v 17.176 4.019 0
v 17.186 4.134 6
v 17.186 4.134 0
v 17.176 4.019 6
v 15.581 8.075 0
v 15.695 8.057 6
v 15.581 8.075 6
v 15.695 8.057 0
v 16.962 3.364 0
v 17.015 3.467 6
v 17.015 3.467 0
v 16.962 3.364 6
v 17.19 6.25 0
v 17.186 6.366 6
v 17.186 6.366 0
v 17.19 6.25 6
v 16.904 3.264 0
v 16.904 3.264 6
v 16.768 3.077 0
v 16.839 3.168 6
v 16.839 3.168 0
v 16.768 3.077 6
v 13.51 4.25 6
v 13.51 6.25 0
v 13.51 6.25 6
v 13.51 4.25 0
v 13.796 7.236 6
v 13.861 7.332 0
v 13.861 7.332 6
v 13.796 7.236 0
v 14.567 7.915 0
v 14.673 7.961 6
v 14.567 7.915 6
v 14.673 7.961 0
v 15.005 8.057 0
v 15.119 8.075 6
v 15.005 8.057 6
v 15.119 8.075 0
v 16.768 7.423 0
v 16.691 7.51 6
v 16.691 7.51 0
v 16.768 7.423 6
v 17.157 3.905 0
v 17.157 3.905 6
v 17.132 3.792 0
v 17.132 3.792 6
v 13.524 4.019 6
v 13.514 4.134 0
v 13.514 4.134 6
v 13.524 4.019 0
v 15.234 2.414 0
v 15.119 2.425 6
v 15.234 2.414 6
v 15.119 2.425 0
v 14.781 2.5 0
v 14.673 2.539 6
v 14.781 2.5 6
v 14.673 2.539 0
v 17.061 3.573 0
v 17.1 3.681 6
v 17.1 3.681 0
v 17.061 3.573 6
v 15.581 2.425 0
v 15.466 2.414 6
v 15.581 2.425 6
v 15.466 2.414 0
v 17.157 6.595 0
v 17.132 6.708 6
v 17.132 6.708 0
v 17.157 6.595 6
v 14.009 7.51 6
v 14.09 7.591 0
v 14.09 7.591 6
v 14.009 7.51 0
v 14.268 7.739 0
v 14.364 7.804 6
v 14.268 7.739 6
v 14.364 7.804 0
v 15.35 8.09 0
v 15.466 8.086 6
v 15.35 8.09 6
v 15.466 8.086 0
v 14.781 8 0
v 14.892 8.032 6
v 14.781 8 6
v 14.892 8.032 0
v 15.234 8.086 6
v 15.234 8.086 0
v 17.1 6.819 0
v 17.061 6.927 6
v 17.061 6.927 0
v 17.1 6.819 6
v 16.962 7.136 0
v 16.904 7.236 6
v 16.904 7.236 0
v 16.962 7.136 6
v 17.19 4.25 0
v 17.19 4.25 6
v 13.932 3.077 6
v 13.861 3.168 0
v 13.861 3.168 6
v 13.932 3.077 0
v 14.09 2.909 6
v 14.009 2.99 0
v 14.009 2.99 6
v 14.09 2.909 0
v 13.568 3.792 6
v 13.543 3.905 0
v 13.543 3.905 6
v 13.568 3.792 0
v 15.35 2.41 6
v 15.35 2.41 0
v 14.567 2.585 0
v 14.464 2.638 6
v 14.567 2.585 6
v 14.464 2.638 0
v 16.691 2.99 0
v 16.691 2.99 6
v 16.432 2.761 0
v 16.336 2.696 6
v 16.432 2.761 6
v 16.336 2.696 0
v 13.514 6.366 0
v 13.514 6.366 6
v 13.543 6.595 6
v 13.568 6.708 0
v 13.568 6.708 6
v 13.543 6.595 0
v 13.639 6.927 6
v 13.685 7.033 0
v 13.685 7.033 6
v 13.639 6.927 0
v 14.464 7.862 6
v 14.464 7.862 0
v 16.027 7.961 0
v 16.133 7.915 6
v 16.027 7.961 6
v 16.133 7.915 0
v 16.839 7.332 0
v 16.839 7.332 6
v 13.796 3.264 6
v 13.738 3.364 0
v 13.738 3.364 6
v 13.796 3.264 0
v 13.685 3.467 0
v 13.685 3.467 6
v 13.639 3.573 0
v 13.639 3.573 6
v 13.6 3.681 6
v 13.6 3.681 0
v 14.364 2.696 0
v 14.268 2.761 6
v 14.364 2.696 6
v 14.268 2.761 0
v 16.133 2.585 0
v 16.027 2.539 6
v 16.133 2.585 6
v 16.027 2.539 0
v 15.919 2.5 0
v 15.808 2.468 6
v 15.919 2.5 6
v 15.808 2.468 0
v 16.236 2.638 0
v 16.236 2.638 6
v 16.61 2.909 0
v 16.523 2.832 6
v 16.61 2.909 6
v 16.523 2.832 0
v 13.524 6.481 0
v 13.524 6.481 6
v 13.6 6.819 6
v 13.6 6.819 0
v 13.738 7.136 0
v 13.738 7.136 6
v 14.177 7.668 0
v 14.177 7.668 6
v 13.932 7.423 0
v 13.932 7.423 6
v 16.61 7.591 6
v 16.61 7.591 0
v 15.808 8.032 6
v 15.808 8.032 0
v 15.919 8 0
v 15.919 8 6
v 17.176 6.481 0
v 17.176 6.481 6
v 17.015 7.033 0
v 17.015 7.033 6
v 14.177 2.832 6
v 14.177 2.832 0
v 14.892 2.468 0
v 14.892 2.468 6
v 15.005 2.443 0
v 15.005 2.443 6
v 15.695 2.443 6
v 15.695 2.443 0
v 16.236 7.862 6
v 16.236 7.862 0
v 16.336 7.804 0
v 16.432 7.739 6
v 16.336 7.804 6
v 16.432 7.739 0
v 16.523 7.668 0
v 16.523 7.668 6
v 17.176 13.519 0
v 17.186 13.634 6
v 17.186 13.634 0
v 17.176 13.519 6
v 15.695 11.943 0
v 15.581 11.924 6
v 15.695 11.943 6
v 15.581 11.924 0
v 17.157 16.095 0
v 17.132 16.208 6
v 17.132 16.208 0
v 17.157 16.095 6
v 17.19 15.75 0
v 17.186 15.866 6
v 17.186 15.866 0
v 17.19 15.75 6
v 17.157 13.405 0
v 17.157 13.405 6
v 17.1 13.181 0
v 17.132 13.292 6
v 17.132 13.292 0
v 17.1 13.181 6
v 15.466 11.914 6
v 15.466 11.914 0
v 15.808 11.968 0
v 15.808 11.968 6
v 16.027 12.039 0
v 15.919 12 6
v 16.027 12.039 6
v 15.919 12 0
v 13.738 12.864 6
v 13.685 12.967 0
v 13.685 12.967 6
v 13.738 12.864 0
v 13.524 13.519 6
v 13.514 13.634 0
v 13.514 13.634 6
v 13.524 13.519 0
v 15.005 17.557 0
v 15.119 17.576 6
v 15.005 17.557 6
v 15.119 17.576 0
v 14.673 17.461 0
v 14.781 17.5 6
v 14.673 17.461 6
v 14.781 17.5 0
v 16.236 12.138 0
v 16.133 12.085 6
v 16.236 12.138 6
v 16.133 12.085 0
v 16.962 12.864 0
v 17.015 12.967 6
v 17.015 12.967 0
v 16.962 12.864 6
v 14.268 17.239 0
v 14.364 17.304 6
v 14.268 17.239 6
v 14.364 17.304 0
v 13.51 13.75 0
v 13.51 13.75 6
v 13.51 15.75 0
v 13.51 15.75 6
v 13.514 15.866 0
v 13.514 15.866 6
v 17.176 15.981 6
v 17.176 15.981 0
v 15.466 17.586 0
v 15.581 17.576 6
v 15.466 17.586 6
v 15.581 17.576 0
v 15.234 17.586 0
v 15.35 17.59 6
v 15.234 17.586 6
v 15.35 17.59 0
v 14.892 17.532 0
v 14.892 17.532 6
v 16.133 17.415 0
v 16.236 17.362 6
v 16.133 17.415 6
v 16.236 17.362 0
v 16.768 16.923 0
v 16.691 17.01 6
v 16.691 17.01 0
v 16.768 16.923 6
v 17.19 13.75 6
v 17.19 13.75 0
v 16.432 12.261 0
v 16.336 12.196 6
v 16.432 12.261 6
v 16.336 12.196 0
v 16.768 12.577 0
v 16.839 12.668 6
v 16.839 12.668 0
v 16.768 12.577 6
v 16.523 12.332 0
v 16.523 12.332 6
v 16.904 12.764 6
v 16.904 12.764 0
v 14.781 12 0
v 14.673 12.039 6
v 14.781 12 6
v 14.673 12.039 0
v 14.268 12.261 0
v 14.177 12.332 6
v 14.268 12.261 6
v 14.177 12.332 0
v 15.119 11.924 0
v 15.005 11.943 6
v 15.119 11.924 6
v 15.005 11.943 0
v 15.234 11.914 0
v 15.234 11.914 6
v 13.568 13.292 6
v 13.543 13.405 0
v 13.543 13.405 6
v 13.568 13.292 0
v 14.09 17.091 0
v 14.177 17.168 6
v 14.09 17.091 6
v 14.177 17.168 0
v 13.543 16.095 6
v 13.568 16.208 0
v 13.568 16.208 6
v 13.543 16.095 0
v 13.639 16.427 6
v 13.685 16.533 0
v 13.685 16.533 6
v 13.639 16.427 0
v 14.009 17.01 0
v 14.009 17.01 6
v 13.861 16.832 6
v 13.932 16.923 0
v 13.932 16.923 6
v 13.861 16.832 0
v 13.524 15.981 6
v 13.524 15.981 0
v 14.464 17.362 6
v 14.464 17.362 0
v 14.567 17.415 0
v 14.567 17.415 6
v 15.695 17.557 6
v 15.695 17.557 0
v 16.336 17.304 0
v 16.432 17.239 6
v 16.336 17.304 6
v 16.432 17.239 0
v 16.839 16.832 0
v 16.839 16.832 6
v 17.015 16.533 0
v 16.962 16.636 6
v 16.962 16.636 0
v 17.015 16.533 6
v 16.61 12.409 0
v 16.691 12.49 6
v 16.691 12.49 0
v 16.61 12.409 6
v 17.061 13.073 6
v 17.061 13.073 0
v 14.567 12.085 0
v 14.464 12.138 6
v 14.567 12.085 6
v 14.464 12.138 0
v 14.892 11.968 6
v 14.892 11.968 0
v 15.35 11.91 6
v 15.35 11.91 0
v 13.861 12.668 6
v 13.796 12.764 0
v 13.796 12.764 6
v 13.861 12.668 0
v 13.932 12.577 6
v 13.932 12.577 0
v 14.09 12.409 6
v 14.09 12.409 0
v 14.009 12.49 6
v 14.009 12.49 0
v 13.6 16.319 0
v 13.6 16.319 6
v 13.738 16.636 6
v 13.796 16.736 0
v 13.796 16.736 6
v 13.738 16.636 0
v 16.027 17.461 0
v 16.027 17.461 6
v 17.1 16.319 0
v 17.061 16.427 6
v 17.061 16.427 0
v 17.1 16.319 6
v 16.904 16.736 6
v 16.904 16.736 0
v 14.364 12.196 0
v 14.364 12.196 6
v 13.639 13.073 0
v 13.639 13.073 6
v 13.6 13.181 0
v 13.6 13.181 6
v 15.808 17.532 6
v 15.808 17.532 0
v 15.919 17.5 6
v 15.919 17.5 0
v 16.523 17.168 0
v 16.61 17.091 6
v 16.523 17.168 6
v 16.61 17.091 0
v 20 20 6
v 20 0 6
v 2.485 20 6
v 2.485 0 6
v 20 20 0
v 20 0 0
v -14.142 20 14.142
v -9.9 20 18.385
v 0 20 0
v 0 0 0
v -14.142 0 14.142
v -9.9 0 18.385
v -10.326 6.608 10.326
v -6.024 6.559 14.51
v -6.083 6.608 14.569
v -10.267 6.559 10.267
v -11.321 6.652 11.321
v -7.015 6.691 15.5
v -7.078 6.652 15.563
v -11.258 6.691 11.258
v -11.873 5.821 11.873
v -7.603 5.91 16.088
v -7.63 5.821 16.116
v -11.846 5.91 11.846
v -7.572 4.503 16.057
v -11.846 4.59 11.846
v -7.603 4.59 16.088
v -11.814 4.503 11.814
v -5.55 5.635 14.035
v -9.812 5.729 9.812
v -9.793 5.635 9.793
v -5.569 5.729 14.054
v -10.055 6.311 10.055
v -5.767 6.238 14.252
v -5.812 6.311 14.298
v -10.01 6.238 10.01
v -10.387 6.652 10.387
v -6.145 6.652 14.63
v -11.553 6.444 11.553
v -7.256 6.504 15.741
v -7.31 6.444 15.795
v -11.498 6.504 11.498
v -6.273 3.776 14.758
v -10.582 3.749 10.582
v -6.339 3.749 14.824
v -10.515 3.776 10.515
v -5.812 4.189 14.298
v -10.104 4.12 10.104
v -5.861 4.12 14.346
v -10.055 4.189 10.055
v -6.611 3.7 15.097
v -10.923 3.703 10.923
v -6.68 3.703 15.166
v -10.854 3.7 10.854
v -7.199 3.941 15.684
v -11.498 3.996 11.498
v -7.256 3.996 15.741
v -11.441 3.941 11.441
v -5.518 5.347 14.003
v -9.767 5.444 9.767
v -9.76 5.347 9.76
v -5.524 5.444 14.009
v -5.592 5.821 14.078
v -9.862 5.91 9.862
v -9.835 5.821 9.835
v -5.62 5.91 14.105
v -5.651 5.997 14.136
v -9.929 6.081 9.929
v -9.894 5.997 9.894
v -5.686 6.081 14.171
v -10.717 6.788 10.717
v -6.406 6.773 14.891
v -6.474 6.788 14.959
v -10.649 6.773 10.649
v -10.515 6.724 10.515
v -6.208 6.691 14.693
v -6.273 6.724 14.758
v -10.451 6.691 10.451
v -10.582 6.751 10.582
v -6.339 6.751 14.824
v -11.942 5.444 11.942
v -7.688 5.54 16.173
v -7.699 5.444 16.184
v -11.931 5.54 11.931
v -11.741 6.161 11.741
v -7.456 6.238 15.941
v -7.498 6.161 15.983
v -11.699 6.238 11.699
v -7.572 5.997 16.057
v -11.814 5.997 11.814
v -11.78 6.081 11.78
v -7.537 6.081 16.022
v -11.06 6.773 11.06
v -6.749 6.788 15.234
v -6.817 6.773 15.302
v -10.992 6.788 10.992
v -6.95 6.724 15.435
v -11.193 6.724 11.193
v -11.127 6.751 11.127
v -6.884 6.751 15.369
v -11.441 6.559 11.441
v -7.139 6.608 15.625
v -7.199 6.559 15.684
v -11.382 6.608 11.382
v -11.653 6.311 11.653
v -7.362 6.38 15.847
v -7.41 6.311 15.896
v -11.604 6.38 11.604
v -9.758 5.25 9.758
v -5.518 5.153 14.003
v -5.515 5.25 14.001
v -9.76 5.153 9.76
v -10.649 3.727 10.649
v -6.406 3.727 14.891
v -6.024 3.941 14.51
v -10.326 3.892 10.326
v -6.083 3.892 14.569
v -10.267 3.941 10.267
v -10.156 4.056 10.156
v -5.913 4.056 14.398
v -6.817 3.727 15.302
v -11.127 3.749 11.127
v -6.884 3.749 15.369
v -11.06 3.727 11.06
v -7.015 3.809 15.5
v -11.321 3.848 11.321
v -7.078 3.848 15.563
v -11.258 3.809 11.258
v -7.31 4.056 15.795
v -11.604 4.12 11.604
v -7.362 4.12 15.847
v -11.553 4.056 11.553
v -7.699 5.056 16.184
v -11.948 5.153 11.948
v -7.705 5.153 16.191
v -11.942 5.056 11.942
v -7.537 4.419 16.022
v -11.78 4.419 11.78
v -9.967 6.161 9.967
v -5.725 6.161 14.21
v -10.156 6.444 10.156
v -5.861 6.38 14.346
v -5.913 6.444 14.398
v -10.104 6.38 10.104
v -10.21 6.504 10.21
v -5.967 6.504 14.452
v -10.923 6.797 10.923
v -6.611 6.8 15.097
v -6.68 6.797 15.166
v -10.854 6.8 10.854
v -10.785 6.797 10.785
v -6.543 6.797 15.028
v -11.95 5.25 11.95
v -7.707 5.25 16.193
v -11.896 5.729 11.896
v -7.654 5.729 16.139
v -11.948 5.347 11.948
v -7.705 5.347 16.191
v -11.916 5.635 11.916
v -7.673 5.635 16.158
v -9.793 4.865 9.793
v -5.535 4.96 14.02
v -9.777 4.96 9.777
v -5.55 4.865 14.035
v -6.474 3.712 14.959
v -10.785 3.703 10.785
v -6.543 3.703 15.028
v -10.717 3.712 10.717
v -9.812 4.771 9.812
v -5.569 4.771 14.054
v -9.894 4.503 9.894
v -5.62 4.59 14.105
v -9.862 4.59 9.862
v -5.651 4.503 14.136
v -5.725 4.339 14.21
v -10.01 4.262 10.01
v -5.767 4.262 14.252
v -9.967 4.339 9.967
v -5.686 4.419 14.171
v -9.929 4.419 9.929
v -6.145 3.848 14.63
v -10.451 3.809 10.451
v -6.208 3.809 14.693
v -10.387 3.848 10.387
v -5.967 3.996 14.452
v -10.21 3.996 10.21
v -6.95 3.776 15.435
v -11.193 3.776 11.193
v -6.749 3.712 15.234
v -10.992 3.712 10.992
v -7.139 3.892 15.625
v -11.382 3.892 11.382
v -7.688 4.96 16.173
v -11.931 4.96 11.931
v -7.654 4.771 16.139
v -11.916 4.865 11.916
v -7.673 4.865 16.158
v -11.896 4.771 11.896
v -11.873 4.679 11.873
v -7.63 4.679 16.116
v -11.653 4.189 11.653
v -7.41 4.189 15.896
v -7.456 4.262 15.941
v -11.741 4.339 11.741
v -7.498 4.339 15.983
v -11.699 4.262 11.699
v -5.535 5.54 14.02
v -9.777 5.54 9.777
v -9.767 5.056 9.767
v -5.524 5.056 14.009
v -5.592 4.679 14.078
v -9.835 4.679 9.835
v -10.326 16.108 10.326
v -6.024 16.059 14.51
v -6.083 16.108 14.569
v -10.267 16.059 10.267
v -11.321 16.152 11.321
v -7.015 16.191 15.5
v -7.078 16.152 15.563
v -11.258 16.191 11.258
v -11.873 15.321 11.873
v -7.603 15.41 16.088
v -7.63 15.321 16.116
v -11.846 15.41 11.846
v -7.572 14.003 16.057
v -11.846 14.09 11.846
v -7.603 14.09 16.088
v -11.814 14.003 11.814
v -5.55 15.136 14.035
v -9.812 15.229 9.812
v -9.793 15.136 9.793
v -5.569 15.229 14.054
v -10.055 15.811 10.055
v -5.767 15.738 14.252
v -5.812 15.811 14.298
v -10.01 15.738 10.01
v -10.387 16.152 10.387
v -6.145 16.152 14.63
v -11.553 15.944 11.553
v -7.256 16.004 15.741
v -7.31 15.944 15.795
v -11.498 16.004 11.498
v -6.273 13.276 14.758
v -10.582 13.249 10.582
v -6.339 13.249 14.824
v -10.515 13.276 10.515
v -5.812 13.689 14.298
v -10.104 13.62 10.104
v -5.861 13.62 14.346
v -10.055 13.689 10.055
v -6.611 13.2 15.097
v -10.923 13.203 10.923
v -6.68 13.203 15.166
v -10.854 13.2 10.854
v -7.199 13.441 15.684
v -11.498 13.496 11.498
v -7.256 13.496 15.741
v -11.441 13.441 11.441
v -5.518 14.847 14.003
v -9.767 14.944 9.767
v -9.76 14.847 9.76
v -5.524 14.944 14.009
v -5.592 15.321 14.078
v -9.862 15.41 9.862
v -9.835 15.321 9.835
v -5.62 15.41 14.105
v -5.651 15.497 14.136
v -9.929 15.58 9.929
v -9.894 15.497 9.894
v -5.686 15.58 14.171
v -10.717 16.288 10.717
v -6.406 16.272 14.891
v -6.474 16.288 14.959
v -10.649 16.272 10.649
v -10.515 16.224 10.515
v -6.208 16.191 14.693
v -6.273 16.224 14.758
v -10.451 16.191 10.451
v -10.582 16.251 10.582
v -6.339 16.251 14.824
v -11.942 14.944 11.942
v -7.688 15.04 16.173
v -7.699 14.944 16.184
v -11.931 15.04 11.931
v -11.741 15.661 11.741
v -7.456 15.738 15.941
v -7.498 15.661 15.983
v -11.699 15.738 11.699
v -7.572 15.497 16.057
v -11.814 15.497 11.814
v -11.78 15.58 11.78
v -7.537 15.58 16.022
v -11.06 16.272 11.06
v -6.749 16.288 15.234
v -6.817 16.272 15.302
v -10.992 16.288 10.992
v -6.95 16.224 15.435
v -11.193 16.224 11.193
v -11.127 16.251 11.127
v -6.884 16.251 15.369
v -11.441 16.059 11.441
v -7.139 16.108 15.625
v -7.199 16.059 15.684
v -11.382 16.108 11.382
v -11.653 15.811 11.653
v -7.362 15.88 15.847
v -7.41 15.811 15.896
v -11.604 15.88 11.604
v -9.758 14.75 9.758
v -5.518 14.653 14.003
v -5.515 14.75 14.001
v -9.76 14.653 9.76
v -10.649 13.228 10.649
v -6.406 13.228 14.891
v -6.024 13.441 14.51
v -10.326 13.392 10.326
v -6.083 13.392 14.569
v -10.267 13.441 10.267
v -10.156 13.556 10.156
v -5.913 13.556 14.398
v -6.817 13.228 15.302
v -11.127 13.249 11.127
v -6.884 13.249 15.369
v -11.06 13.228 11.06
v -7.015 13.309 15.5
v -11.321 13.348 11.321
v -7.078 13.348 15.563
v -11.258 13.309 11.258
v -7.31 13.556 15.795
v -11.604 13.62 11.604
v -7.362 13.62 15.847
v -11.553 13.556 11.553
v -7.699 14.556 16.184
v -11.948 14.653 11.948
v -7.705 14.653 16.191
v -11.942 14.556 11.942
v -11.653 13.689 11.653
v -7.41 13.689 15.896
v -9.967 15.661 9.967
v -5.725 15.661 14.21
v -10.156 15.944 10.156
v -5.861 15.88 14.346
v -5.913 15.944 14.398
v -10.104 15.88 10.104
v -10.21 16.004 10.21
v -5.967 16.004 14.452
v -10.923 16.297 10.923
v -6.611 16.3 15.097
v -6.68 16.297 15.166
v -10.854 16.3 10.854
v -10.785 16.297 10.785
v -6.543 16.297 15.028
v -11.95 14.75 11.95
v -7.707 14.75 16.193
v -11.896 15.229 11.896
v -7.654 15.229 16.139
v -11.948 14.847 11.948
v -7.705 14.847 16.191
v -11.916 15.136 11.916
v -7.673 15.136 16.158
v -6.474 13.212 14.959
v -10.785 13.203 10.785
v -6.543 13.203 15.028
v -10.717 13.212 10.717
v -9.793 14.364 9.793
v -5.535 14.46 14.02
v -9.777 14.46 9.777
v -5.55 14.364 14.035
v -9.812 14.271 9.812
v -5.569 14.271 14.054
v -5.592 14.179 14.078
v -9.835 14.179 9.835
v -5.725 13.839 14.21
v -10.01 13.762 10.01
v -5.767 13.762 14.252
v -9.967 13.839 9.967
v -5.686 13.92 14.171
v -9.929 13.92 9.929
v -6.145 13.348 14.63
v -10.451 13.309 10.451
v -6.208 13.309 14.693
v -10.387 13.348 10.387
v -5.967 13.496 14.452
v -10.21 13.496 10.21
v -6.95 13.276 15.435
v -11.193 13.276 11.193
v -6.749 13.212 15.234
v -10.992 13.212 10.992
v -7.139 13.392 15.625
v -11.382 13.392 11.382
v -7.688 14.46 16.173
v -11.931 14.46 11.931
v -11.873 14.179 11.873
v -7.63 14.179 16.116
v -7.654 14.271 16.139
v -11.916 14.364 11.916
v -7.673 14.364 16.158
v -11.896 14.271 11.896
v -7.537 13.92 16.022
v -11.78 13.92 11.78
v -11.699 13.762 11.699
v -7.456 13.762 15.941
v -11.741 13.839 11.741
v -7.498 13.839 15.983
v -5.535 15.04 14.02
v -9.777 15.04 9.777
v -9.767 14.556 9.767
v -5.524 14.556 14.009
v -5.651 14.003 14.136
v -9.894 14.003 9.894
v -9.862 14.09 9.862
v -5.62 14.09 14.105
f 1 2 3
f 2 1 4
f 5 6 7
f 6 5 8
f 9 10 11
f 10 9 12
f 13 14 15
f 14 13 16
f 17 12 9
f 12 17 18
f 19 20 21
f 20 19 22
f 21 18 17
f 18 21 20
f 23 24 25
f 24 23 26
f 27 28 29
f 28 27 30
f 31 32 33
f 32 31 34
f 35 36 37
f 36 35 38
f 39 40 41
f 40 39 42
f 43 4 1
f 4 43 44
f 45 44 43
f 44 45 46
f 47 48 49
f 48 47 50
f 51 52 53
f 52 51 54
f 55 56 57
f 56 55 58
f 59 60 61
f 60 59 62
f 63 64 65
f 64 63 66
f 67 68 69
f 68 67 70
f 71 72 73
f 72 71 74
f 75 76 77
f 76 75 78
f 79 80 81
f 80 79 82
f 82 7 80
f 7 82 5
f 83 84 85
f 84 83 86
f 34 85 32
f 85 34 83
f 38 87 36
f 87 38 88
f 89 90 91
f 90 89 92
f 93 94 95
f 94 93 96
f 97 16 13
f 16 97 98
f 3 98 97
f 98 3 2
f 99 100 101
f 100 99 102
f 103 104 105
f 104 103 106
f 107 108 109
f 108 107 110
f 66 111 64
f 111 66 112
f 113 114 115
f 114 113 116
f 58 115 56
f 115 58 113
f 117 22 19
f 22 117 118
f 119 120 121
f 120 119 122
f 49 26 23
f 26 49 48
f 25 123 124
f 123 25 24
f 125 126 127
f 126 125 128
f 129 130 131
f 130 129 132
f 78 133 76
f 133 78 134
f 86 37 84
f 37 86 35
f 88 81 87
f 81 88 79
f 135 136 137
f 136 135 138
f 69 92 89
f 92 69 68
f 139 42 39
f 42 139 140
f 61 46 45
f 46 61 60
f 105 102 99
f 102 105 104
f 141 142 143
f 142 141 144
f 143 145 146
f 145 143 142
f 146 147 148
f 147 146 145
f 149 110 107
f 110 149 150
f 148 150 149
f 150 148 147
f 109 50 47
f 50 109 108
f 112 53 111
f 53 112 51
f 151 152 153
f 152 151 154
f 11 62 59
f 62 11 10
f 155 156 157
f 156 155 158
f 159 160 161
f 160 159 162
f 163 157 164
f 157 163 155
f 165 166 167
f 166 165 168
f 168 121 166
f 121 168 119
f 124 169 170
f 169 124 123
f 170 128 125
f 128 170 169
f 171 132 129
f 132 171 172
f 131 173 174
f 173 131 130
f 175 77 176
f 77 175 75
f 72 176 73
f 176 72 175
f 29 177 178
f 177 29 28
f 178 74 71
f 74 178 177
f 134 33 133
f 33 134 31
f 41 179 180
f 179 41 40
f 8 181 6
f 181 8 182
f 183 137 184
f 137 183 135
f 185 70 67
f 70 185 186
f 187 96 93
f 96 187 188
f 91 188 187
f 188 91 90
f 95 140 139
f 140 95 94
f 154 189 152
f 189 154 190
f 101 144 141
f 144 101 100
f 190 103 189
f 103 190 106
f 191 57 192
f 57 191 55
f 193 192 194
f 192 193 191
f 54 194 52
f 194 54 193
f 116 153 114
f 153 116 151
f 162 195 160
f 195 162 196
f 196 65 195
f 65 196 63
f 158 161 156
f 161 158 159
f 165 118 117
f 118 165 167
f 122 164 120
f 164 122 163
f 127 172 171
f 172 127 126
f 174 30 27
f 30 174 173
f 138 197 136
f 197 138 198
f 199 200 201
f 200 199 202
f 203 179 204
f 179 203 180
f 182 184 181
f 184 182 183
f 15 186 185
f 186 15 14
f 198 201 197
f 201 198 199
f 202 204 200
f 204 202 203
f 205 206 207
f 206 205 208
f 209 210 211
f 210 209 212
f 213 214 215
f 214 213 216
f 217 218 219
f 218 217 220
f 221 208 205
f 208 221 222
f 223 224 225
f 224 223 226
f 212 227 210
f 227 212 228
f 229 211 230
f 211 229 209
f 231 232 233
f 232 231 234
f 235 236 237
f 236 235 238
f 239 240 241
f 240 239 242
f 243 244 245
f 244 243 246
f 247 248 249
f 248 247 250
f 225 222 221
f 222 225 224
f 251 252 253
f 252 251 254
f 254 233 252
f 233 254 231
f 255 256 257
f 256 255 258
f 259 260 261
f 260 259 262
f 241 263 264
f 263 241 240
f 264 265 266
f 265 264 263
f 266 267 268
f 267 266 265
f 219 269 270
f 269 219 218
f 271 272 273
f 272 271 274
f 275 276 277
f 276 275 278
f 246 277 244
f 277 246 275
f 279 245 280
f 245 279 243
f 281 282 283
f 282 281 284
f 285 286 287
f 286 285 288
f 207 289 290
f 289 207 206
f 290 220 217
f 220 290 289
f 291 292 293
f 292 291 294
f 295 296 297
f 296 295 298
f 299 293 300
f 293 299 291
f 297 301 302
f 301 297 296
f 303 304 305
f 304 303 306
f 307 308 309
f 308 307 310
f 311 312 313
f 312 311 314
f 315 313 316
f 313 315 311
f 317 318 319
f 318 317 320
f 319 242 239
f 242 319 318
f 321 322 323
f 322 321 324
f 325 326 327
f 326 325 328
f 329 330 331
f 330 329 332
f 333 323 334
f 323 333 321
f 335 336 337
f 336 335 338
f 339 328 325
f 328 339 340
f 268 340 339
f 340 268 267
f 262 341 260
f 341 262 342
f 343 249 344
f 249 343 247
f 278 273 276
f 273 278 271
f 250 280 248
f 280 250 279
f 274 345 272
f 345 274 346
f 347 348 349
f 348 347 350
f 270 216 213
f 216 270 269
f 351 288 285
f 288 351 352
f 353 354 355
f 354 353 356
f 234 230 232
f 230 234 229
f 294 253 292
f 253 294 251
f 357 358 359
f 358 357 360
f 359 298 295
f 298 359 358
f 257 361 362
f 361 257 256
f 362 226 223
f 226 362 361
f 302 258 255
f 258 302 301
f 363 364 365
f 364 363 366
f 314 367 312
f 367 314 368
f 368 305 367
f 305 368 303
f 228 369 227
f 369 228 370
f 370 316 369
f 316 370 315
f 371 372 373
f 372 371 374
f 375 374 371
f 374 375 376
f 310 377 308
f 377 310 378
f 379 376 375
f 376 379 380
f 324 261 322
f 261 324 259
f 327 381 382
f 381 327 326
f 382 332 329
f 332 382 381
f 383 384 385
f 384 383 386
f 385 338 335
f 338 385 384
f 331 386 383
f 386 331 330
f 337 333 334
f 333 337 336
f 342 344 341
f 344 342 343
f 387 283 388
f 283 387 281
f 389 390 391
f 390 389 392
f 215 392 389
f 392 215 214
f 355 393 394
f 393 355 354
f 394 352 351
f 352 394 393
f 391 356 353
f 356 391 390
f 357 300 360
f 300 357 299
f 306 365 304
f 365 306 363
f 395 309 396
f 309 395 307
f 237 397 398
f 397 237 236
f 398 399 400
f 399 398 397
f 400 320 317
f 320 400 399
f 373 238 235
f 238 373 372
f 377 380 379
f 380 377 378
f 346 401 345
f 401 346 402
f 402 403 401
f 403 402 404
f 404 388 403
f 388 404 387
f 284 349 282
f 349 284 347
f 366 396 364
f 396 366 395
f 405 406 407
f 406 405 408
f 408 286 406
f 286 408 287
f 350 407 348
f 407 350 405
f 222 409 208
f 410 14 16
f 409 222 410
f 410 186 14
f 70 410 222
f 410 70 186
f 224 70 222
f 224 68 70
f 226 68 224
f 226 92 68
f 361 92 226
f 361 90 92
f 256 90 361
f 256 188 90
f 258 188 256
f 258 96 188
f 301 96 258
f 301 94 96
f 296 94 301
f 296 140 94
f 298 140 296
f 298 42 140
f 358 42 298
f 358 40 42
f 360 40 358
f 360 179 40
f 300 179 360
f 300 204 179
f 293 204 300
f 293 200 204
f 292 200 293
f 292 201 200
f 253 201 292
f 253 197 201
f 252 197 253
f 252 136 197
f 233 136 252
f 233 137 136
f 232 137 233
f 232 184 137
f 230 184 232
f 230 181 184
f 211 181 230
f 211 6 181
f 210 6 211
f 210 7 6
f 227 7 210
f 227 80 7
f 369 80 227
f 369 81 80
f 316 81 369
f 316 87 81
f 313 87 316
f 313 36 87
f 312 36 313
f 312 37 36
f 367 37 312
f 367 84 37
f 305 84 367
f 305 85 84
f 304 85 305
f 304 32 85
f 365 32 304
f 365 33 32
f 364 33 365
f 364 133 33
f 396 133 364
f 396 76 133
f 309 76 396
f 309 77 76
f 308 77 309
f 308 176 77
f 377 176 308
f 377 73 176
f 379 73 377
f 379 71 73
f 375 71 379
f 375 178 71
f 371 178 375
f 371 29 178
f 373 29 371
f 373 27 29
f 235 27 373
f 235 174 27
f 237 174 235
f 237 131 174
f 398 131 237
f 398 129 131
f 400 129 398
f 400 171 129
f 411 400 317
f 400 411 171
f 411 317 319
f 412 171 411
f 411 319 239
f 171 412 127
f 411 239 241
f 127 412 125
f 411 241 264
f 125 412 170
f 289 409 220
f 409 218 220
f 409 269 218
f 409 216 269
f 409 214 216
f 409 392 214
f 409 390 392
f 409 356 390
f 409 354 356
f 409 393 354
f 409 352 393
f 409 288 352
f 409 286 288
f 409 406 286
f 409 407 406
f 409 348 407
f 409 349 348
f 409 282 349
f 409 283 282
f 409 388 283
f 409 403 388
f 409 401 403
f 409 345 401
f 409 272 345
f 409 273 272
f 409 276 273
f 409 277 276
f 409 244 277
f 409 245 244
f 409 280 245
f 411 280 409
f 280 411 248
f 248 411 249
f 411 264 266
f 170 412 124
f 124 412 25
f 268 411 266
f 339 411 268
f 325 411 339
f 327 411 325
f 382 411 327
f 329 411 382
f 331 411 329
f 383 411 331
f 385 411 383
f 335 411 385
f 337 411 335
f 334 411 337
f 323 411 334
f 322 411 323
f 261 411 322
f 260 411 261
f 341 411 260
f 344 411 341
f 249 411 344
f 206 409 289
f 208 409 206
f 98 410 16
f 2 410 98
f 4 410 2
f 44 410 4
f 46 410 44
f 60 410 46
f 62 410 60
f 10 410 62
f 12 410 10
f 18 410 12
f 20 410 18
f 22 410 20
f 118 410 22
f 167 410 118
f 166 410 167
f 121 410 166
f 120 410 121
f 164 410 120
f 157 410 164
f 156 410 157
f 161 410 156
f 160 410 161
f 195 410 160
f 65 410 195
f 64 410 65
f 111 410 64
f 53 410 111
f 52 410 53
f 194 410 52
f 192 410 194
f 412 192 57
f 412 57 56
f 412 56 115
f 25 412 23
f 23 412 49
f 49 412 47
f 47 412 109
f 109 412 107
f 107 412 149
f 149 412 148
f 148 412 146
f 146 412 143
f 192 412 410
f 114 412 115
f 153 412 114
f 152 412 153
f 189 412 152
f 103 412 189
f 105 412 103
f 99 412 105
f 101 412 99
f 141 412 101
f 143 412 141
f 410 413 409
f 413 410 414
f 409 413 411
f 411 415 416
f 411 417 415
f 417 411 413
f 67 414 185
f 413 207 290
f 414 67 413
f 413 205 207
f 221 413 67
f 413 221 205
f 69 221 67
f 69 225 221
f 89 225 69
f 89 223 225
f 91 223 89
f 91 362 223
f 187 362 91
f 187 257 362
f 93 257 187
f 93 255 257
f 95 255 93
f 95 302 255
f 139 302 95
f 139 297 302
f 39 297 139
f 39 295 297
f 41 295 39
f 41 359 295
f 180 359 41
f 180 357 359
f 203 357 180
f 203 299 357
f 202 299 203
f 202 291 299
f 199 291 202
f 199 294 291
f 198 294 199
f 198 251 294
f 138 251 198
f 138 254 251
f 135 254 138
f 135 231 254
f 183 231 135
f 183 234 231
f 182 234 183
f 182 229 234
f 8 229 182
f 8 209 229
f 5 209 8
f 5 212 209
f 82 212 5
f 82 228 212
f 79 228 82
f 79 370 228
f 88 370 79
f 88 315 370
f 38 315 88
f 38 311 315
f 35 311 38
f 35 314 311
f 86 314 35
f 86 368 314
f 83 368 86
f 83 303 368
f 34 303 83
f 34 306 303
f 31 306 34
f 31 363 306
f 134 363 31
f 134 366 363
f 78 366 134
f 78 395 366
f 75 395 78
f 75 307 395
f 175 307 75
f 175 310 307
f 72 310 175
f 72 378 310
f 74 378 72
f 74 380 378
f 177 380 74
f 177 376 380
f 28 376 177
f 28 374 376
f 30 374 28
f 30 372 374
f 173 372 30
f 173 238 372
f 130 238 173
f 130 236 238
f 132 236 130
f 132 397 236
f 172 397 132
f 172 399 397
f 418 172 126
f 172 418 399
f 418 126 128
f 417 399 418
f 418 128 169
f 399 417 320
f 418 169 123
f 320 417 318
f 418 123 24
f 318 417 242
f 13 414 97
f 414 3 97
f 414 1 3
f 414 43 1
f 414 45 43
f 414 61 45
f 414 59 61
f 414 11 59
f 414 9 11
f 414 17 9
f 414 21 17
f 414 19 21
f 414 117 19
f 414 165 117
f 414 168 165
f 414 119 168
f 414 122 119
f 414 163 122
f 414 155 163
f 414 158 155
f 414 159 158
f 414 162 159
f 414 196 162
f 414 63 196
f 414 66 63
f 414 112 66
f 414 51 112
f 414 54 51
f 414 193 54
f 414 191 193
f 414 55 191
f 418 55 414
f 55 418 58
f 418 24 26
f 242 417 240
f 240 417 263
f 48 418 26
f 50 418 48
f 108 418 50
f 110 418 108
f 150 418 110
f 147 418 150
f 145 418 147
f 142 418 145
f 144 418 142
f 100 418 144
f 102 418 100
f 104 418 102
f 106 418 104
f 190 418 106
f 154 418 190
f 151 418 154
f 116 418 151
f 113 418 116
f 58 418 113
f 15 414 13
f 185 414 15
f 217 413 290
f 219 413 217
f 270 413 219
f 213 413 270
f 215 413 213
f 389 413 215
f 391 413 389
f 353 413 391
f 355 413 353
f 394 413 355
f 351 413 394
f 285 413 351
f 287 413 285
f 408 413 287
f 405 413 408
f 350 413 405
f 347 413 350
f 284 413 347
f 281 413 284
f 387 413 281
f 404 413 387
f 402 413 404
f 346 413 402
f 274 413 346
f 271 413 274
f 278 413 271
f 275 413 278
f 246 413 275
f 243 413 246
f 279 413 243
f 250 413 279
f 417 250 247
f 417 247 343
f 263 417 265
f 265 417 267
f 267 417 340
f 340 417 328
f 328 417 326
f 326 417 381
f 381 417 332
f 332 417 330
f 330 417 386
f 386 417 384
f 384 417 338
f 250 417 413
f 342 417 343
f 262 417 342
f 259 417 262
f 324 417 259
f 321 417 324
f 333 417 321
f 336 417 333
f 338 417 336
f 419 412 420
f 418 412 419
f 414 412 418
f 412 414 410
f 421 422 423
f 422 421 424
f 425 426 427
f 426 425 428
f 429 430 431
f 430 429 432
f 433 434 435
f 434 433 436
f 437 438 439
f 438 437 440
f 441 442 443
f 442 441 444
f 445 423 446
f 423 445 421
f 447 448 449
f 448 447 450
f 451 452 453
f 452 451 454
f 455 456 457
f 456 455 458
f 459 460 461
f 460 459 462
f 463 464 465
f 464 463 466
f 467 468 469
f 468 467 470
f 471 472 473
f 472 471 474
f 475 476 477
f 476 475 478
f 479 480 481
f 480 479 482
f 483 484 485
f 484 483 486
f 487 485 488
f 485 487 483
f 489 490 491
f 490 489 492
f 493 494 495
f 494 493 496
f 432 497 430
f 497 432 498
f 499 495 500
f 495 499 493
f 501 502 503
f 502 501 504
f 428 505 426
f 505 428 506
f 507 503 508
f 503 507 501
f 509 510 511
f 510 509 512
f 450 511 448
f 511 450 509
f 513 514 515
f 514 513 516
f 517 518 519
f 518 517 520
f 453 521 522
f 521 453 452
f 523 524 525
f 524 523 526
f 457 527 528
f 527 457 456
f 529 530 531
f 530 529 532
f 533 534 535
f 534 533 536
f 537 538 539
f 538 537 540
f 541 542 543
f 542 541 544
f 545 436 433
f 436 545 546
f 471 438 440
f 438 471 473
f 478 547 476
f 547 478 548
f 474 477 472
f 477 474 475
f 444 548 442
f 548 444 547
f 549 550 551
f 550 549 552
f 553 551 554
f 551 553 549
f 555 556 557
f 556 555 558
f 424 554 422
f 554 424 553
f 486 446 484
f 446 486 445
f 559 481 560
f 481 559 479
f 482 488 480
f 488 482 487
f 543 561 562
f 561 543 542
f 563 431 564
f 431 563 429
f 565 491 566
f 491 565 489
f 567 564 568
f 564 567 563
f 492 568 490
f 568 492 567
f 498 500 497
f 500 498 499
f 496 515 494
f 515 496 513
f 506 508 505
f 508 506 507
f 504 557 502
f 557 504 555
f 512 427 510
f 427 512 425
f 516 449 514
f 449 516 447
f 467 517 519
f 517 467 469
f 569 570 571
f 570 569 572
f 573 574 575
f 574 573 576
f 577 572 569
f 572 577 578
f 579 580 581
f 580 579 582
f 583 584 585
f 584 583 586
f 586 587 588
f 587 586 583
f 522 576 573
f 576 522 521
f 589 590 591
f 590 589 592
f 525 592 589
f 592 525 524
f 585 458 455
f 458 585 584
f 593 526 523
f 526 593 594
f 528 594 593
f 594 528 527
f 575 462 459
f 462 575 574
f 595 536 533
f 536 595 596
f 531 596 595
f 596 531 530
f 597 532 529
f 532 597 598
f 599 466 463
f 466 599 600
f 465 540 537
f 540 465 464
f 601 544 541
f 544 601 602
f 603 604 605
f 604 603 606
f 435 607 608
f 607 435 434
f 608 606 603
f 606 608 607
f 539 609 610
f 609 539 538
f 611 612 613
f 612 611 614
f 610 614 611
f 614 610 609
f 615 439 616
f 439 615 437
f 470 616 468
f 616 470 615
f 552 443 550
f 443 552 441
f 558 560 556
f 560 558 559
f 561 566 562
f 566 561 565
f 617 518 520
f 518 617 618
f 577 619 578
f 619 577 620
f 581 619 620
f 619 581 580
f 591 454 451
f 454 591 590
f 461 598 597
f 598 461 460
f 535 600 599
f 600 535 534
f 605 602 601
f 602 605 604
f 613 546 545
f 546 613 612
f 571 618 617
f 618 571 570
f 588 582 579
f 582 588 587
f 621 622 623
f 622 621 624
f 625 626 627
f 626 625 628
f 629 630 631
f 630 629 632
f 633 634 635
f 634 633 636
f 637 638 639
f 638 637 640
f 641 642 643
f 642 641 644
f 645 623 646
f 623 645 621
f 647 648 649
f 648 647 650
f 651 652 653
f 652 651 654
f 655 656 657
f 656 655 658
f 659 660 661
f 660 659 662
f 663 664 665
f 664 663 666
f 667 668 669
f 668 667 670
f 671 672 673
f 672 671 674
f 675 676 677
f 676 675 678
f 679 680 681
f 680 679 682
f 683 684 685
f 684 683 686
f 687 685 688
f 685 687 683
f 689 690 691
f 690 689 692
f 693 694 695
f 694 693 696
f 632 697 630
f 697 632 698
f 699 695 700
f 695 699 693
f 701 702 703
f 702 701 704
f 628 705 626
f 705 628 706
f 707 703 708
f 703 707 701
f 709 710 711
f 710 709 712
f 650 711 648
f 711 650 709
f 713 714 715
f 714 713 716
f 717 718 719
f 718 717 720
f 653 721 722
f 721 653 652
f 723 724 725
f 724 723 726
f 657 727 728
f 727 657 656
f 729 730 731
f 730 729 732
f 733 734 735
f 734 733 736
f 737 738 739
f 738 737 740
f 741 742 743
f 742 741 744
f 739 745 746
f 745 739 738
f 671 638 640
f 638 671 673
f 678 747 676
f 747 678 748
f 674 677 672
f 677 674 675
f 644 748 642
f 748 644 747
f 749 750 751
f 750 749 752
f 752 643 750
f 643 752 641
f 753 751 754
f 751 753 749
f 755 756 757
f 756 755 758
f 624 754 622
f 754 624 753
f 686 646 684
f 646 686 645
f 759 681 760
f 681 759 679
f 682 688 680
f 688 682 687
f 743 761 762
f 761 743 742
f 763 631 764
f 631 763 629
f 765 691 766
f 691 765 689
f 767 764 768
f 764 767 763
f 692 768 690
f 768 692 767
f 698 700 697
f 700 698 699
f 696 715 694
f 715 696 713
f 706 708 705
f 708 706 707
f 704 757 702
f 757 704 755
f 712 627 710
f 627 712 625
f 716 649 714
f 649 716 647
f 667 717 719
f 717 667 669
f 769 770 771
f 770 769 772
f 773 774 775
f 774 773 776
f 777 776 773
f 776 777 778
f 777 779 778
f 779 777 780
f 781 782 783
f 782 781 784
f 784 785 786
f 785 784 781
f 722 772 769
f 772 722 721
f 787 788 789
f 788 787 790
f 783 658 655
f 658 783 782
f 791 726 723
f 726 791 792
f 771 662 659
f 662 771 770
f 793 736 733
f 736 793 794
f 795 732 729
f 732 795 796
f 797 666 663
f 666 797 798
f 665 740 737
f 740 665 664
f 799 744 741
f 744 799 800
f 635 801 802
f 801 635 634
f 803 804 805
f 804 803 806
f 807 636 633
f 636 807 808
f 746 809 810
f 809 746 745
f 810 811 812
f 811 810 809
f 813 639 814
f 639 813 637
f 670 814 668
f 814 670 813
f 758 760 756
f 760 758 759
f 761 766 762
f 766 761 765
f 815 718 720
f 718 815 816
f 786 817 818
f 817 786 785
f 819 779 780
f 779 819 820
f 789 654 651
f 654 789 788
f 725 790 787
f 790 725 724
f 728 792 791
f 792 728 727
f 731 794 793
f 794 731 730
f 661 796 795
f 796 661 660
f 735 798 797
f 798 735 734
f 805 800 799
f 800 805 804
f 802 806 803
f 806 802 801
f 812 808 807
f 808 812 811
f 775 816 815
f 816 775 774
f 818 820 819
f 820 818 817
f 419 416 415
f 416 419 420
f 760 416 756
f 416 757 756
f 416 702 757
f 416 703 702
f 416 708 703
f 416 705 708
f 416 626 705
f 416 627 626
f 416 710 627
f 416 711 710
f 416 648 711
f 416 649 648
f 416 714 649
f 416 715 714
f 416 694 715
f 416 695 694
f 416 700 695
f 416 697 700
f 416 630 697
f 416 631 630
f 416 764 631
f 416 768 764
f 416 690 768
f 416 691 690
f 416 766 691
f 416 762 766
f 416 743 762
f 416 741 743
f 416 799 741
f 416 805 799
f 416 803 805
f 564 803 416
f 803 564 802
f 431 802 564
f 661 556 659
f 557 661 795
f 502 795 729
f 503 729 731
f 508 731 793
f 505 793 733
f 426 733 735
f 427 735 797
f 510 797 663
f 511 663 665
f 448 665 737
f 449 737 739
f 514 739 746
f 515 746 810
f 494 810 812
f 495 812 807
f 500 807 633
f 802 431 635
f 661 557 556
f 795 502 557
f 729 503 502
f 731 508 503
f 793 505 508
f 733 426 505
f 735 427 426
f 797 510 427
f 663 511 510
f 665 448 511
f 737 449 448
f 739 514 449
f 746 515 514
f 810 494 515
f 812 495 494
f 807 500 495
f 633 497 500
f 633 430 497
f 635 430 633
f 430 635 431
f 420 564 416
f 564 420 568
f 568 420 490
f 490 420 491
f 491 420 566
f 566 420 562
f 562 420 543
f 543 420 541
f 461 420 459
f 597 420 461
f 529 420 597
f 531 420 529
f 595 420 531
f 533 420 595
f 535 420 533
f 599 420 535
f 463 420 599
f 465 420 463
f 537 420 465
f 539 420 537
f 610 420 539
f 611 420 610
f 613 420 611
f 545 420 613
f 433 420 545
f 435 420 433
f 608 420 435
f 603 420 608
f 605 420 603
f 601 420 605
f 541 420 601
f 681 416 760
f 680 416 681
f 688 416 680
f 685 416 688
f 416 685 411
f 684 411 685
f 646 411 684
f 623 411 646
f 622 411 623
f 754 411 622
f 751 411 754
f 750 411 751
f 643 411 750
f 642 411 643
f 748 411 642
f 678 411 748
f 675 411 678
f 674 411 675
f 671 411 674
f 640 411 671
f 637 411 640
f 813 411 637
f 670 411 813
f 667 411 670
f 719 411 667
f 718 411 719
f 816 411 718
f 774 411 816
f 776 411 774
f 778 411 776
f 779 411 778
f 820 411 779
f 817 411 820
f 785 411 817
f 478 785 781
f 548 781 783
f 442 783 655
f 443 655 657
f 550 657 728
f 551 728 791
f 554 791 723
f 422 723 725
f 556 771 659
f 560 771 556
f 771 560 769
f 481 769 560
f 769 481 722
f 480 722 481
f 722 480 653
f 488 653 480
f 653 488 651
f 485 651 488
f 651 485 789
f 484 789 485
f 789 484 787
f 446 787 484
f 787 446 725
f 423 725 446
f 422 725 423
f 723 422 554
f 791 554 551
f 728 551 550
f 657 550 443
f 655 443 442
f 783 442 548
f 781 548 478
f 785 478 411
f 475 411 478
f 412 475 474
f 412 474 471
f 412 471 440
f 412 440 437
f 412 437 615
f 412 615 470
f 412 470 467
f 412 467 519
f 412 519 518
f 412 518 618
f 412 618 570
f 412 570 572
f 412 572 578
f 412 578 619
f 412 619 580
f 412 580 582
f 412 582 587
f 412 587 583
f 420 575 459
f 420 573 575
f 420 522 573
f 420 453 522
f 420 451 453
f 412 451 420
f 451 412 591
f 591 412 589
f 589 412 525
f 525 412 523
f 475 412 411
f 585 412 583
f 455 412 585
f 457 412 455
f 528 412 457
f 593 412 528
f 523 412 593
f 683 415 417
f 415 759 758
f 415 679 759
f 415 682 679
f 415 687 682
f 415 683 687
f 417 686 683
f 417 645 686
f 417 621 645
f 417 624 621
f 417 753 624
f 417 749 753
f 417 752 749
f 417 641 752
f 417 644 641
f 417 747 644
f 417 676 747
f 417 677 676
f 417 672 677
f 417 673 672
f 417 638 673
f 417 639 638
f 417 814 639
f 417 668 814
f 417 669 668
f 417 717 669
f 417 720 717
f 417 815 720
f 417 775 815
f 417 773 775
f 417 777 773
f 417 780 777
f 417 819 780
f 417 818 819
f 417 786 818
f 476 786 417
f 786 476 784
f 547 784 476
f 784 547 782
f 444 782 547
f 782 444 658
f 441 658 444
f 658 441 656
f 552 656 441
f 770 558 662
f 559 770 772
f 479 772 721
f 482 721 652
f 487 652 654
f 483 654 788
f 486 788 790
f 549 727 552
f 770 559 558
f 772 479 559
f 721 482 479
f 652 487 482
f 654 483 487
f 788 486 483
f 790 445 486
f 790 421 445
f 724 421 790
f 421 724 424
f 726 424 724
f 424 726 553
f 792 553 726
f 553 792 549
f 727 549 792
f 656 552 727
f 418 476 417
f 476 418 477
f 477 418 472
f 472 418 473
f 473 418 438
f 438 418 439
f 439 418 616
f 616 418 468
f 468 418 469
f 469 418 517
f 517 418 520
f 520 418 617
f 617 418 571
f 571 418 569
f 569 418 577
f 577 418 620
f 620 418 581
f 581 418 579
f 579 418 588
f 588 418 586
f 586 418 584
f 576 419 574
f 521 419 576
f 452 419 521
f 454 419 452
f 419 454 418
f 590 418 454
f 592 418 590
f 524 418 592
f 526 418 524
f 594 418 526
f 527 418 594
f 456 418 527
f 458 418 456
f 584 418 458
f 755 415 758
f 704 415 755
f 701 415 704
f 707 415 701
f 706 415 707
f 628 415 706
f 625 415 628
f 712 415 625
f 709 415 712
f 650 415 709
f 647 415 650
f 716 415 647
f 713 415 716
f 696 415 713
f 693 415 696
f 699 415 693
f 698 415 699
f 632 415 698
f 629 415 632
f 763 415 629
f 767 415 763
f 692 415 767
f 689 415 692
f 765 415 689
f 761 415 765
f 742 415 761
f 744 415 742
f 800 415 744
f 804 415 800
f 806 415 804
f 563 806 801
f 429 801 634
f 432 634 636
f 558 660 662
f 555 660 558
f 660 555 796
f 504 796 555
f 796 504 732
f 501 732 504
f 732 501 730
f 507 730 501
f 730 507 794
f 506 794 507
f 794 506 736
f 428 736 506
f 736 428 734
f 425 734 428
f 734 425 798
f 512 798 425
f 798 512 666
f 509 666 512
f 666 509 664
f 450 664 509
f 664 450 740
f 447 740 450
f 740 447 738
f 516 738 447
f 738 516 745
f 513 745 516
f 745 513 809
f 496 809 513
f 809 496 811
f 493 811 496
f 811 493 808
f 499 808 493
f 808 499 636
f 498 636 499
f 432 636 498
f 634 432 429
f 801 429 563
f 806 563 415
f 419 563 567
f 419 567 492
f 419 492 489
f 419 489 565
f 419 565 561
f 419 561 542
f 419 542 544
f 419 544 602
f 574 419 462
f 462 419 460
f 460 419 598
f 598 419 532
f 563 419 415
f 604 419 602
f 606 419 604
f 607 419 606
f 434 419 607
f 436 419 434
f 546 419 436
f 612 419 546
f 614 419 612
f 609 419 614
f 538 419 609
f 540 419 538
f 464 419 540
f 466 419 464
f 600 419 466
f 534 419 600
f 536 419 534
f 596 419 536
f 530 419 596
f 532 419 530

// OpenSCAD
hsep = 9.5;
hrad = 3.1/2;
mrad = 3.68/2;  // #6 wood screws

pwidth = 20;
plength = 20;
pthick = 6;

// very quick design for an endstop micro-switch mount
// section that screws to scanner
difference()
{
        $fn=100;
        cube([plength,plength,pthick]);
        for(y=[pwidth/2-hsep/2,pwidth/2+hsep/2])
        {
            hull()
            {
                translate([plength-1.5*hrad*2,y-1,0]) cylinder(h=pthick*2.5,r=mrad,center=true);
                translate([plength-1.5*hrad*2,y+1,0]) cylinder(h=pthick*2.5,r=mrad,center=true);
            }
        }
}
rotate([0,45,0]) translate([-20,0,0]) difference()
{
        $fn=100;
        cube([plength,pwidth,pthick]);
        for(y=[pwidth/2-hsep/2,pwidth/2+hsep/2])
        {
            #translate([1.5*hrad*2,y,0]) cylinder(h=pthick*2.5,r=hrad,center=true);
        }
}
